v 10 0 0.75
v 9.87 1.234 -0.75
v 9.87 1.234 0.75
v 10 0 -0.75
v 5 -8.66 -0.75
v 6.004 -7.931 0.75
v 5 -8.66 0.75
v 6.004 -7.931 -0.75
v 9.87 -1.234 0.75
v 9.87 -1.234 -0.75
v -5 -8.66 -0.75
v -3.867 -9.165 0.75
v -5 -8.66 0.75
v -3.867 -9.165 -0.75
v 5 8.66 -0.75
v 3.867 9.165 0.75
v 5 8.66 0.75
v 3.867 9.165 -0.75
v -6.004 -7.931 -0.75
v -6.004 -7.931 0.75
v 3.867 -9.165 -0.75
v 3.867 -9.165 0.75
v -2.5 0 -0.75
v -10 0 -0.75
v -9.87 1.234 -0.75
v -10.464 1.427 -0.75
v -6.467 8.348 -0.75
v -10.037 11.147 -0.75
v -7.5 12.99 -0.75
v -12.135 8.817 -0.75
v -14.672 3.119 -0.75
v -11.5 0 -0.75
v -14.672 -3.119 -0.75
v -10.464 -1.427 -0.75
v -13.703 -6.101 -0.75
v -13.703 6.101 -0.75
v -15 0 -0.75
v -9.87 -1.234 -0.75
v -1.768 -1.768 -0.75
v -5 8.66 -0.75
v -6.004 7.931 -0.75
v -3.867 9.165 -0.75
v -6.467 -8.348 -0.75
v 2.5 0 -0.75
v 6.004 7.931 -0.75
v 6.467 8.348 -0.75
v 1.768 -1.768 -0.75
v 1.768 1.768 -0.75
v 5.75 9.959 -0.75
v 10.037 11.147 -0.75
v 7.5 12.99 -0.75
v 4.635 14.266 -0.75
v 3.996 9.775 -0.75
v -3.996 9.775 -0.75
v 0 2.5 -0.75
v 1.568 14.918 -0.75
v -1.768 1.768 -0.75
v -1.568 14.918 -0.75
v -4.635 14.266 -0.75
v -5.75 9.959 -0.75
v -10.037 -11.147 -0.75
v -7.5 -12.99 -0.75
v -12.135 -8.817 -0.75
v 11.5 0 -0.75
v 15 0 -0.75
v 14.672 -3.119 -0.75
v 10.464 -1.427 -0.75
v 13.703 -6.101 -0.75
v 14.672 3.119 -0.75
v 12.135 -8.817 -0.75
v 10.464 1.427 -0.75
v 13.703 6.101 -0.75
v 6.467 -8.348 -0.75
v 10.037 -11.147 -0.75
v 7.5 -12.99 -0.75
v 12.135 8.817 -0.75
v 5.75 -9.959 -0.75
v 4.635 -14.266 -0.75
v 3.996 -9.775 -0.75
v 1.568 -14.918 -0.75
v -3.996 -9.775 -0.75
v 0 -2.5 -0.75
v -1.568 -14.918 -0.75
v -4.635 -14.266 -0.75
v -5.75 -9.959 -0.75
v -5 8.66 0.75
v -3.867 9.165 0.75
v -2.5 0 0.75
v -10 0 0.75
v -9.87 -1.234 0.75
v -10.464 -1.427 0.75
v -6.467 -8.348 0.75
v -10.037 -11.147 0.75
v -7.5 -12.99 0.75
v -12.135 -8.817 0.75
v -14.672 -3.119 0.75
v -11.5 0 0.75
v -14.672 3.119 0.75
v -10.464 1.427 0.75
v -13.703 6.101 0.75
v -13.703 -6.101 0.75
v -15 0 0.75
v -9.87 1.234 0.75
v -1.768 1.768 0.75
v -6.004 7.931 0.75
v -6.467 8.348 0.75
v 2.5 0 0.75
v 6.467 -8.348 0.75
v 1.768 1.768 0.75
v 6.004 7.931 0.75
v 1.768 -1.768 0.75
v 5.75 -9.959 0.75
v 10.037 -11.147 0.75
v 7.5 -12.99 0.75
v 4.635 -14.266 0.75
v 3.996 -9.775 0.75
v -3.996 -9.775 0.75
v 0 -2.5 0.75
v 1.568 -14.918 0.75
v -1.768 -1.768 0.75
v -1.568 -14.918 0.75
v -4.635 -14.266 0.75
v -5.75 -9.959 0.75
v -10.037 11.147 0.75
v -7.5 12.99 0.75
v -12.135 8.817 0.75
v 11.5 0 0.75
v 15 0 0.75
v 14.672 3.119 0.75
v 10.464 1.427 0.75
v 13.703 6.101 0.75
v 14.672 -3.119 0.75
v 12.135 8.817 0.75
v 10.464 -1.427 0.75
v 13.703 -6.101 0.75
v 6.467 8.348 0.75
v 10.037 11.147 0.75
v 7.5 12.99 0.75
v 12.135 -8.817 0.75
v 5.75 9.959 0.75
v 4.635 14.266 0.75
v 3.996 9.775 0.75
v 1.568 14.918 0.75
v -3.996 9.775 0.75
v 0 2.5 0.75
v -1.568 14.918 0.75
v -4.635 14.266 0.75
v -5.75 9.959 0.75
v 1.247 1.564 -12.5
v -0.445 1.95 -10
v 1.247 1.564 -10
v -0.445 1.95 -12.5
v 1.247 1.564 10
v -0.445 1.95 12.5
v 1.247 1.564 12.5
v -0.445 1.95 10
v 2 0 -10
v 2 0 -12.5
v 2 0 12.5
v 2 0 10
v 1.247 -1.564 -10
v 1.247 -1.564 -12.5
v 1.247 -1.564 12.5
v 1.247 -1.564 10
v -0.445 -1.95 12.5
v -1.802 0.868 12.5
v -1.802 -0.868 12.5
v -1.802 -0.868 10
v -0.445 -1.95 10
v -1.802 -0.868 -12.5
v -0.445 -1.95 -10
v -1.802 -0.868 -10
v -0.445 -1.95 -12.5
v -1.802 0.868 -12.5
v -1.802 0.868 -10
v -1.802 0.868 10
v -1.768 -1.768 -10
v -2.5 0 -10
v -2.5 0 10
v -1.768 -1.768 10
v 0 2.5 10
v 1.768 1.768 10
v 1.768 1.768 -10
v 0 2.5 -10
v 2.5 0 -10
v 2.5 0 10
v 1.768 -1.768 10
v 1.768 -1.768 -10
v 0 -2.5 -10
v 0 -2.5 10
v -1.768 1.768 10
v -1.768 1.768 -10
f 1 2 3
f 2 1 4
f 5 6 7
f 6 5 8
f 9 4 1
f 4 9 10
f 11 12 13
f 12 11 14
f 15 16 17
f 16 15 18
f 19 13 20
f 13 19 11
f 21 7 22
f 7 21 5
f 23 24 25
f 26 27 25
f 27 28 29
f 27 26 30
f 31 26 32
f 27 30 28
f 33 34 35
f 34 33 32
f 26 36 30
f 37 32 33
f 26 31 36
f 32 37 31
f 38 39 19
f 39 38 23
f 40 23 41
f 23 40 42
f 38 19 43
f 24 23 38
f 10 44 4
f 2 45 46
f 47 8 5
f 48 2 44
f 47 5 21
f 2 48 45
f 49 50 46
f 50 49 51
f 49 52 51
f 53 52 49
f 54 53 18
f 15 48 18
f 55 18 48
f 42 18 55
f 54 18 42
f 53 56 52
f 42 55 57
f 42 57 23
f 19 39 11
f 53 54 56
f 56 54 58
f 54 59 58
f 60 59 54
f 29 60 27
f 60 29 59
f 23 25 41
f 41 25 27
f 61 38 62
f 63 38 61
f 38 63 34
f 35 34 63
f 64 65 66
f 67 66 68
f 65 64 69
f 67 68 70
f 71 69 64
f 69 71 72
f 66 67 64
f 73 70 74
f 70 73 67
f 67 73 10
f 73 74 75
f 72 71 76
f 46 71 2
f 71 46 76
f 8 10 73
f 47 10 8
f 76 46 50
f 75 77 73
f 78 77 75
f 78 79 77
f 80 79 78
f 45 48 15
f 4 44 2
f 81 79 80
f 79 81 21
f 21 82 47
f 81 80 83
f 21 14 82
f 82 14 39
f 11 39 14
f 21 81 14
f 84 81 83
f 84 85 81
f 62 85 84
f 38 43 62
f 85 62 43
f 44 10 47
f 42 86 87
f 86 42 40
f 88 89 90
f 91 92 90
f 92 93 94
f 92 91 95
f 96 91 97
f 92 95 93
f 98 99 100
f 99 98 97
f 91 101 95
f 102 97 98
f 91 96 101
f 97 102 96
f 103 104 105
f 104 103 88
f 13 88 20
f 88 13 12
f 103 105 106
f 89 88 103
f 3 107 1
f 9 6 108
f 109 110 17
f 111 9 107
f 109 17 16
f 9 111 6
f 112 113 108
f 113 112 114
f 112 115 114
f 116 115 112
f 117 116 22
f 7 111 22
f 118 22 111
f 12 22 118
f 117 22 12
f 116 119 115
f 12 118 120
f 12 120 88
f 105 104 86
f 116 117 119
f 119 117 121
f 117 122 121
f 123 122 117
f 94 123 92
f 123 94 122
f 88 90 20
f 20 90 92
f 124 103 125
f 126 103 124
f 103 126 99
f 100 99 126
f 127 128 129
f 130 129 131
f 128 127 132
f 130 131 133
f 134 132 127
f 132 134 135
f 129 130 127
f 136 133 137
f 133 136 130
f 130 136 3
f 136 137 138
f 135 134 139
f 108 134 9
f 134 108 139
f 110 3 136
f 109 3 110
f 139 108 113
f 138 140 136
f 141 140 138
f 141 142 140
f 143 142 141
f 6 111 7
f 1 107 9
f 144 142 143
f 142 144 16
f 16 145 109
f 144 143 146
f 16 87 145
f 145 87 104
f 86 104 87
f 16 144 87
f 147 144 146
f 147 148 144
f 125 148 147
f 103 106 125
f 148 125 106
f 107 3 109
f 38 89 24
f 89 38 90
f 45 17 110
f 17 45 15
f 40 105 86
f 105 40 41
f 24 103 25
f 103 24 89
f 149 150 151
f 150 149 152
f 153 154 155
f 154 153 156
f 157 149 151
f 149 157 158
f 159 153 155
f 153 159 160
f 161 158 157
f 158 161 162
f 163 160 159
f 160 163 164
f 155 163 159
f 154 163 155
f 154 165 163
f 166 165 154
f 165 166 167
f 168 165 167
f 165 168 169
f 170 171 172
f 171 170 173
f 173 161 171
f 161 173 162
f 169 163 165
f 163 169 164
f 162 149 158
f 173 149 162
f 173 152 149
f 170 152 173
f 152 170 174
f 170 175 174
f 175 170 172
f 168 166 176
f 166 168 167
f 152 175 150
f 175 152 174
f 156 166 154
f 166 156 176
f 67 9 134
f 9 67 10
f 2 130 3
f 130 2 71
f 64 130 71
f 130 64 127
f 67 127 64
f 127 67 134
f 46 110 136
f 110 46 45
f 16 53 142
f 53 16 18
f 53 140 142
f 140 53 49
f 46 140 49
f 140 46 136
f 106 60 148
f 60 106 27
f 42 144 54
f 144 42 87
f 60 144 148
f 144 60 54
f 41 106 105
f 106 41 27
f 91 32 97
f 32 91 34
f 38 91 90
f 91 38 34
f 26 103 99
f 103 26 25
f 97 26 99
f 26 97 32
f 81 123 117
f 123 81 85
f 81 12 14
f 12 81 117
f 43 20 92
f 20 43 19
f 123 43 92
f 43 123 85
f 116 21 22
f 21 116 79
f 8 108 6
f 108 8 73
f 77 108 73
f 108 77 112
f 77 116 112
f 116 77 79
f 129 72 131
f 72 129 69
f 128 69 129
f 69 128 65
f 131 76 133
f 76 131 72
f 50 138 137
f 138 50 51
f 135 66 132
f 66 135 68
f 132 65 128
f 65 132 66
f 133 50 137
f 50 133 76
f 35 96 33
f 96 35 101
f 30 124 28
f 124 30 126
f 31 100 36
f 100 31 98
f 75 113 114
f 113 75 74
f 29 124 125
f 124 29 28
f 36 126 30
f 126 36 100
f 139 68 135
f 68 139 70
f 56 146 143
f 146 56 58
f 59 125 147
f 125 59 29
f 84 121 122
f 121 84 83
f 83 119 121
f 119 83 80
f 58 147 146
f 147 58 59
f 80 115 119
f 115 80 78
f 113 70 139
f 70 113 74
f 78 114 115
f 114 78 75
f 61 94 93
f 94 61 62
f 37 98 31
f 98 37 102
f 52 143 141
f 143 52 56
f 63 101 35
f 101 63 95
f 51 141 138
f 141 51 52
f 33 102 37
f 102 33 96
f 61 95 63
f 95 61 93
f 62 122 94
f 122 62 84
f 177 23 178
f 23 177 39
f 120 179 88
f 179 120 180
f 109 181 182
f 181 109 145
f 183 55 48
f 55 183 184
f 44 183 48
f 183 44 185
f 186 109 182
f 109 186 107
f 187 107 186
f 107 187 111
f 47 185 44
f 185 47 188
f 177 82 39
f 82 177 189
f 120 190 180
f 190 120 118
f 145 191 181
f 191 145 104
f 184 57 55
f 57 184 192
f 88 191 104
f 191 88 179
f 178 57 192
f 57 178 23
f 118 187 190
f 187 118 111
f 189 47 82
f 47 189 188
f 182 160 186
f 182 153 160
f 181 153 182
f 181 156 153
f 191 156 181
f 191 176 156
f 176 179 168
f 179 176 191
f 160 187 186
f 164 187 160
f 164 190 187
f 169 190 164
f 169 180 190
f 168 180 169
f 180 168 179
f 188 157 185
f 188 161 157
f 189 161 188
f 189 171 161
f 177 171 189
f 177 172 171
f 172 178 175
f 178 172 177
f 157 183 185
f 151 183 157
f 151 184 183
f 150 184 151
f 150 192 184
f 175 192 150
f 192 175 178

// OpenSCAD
// Spacer Ring Parameters
module spacer_ring(outer_diameter=20, inner_diameter=15, thickness=1.5) { // Reduced thickness to match the original model
    difference() {
        // Outer cylinder
        cylinder(h=thickness, r=outer_diameter/2, center=true);
        // Inner cylinder (hole)
        cylinder(h=thickness + 1, r=inner_diameter/2, center=true);
    }
}

// Render the spacer ring
spacer_ring();

// Bolt Parameters
module bolt(length=10, diameter=3) { // Increased length to match the original model
    cylinder(h=length, r=diameter/2, center=true);
}

// Render the bolt
bolt();

// Central Shaft Parameters
module central_shaft(length=20, diameter=5) { // Reduced diameter to match the original model
    cylinder(h=length, r=diameter/2, center=true);
}

// Render the central shaft
central_shaft();

// Input Shaft Parameters
module input_shaft(length=15, base_diameter=4, taper_diameter=2) { // Increased taper to match the original model
    difference() {
        cylinder(h=length, r=base_diameter/2, center=true);
        translate([0, 0, length - 5]) // Taper starts 5 units from the end
            cylinder(h=5, r=taper_diameter/2, center=true);
    }
}

// Render the input shaft
input_shaft();

// Output Shaft Parameters
module output_shaft(length=25, base_diameter=4, taper_diameter=2) { // Increased length and taper to match the original model
    difference() {
        cylinder(h=length, r=base_diameter/2, center=true);
        translate([0, 0, length - 7]) // Taper starts 7 units from the end
            cylinder(h=7, r=taper_diameter/2, center=true);
    }
}

// Render the output shaft
output_shaft();

// Flange Plate Parameters
module flange_plate(diameter=30, thickness=1.5, bolt_holes=6) { // Reduced thickness and increased bolt holes to match the original model
    difference() {
        // Outer cylinder
        cylinder(h=thickness, r=diameter/2, center=true);
        // Bolt holes
        for (i = [0:bolt_holes-1]) {
            rotate([0, 0, i * 360/bolt_holes])
                translate([diameter/2 - 5, 0, 0])
                    cylinder(h=thickness + 1, r=1.5, center=true);
        }
    }
}

// Render the flange plate
flange_plate();

// Nut Parameters
module nut(size=3, thickness=2) { // Reduced hexagonal profile size to match the original model
    difference() {
        // Hexagonal profile
        rotate([0, 0, 30])
            linear_extrude(height=thickness)
                polygon(points=[[0, size], [size * cos(60), size * sin(60)], [-size * cos(60), size * sin(60)], [-size, 0], [-size * cos(60), -size * sin(60)], [size * cos(60), -size * sin(60)]]);
        // Hole
        cylinder(h=thickness + 1, r=size/2.5, center=true);
    }
}

// Render the nut
nut();
